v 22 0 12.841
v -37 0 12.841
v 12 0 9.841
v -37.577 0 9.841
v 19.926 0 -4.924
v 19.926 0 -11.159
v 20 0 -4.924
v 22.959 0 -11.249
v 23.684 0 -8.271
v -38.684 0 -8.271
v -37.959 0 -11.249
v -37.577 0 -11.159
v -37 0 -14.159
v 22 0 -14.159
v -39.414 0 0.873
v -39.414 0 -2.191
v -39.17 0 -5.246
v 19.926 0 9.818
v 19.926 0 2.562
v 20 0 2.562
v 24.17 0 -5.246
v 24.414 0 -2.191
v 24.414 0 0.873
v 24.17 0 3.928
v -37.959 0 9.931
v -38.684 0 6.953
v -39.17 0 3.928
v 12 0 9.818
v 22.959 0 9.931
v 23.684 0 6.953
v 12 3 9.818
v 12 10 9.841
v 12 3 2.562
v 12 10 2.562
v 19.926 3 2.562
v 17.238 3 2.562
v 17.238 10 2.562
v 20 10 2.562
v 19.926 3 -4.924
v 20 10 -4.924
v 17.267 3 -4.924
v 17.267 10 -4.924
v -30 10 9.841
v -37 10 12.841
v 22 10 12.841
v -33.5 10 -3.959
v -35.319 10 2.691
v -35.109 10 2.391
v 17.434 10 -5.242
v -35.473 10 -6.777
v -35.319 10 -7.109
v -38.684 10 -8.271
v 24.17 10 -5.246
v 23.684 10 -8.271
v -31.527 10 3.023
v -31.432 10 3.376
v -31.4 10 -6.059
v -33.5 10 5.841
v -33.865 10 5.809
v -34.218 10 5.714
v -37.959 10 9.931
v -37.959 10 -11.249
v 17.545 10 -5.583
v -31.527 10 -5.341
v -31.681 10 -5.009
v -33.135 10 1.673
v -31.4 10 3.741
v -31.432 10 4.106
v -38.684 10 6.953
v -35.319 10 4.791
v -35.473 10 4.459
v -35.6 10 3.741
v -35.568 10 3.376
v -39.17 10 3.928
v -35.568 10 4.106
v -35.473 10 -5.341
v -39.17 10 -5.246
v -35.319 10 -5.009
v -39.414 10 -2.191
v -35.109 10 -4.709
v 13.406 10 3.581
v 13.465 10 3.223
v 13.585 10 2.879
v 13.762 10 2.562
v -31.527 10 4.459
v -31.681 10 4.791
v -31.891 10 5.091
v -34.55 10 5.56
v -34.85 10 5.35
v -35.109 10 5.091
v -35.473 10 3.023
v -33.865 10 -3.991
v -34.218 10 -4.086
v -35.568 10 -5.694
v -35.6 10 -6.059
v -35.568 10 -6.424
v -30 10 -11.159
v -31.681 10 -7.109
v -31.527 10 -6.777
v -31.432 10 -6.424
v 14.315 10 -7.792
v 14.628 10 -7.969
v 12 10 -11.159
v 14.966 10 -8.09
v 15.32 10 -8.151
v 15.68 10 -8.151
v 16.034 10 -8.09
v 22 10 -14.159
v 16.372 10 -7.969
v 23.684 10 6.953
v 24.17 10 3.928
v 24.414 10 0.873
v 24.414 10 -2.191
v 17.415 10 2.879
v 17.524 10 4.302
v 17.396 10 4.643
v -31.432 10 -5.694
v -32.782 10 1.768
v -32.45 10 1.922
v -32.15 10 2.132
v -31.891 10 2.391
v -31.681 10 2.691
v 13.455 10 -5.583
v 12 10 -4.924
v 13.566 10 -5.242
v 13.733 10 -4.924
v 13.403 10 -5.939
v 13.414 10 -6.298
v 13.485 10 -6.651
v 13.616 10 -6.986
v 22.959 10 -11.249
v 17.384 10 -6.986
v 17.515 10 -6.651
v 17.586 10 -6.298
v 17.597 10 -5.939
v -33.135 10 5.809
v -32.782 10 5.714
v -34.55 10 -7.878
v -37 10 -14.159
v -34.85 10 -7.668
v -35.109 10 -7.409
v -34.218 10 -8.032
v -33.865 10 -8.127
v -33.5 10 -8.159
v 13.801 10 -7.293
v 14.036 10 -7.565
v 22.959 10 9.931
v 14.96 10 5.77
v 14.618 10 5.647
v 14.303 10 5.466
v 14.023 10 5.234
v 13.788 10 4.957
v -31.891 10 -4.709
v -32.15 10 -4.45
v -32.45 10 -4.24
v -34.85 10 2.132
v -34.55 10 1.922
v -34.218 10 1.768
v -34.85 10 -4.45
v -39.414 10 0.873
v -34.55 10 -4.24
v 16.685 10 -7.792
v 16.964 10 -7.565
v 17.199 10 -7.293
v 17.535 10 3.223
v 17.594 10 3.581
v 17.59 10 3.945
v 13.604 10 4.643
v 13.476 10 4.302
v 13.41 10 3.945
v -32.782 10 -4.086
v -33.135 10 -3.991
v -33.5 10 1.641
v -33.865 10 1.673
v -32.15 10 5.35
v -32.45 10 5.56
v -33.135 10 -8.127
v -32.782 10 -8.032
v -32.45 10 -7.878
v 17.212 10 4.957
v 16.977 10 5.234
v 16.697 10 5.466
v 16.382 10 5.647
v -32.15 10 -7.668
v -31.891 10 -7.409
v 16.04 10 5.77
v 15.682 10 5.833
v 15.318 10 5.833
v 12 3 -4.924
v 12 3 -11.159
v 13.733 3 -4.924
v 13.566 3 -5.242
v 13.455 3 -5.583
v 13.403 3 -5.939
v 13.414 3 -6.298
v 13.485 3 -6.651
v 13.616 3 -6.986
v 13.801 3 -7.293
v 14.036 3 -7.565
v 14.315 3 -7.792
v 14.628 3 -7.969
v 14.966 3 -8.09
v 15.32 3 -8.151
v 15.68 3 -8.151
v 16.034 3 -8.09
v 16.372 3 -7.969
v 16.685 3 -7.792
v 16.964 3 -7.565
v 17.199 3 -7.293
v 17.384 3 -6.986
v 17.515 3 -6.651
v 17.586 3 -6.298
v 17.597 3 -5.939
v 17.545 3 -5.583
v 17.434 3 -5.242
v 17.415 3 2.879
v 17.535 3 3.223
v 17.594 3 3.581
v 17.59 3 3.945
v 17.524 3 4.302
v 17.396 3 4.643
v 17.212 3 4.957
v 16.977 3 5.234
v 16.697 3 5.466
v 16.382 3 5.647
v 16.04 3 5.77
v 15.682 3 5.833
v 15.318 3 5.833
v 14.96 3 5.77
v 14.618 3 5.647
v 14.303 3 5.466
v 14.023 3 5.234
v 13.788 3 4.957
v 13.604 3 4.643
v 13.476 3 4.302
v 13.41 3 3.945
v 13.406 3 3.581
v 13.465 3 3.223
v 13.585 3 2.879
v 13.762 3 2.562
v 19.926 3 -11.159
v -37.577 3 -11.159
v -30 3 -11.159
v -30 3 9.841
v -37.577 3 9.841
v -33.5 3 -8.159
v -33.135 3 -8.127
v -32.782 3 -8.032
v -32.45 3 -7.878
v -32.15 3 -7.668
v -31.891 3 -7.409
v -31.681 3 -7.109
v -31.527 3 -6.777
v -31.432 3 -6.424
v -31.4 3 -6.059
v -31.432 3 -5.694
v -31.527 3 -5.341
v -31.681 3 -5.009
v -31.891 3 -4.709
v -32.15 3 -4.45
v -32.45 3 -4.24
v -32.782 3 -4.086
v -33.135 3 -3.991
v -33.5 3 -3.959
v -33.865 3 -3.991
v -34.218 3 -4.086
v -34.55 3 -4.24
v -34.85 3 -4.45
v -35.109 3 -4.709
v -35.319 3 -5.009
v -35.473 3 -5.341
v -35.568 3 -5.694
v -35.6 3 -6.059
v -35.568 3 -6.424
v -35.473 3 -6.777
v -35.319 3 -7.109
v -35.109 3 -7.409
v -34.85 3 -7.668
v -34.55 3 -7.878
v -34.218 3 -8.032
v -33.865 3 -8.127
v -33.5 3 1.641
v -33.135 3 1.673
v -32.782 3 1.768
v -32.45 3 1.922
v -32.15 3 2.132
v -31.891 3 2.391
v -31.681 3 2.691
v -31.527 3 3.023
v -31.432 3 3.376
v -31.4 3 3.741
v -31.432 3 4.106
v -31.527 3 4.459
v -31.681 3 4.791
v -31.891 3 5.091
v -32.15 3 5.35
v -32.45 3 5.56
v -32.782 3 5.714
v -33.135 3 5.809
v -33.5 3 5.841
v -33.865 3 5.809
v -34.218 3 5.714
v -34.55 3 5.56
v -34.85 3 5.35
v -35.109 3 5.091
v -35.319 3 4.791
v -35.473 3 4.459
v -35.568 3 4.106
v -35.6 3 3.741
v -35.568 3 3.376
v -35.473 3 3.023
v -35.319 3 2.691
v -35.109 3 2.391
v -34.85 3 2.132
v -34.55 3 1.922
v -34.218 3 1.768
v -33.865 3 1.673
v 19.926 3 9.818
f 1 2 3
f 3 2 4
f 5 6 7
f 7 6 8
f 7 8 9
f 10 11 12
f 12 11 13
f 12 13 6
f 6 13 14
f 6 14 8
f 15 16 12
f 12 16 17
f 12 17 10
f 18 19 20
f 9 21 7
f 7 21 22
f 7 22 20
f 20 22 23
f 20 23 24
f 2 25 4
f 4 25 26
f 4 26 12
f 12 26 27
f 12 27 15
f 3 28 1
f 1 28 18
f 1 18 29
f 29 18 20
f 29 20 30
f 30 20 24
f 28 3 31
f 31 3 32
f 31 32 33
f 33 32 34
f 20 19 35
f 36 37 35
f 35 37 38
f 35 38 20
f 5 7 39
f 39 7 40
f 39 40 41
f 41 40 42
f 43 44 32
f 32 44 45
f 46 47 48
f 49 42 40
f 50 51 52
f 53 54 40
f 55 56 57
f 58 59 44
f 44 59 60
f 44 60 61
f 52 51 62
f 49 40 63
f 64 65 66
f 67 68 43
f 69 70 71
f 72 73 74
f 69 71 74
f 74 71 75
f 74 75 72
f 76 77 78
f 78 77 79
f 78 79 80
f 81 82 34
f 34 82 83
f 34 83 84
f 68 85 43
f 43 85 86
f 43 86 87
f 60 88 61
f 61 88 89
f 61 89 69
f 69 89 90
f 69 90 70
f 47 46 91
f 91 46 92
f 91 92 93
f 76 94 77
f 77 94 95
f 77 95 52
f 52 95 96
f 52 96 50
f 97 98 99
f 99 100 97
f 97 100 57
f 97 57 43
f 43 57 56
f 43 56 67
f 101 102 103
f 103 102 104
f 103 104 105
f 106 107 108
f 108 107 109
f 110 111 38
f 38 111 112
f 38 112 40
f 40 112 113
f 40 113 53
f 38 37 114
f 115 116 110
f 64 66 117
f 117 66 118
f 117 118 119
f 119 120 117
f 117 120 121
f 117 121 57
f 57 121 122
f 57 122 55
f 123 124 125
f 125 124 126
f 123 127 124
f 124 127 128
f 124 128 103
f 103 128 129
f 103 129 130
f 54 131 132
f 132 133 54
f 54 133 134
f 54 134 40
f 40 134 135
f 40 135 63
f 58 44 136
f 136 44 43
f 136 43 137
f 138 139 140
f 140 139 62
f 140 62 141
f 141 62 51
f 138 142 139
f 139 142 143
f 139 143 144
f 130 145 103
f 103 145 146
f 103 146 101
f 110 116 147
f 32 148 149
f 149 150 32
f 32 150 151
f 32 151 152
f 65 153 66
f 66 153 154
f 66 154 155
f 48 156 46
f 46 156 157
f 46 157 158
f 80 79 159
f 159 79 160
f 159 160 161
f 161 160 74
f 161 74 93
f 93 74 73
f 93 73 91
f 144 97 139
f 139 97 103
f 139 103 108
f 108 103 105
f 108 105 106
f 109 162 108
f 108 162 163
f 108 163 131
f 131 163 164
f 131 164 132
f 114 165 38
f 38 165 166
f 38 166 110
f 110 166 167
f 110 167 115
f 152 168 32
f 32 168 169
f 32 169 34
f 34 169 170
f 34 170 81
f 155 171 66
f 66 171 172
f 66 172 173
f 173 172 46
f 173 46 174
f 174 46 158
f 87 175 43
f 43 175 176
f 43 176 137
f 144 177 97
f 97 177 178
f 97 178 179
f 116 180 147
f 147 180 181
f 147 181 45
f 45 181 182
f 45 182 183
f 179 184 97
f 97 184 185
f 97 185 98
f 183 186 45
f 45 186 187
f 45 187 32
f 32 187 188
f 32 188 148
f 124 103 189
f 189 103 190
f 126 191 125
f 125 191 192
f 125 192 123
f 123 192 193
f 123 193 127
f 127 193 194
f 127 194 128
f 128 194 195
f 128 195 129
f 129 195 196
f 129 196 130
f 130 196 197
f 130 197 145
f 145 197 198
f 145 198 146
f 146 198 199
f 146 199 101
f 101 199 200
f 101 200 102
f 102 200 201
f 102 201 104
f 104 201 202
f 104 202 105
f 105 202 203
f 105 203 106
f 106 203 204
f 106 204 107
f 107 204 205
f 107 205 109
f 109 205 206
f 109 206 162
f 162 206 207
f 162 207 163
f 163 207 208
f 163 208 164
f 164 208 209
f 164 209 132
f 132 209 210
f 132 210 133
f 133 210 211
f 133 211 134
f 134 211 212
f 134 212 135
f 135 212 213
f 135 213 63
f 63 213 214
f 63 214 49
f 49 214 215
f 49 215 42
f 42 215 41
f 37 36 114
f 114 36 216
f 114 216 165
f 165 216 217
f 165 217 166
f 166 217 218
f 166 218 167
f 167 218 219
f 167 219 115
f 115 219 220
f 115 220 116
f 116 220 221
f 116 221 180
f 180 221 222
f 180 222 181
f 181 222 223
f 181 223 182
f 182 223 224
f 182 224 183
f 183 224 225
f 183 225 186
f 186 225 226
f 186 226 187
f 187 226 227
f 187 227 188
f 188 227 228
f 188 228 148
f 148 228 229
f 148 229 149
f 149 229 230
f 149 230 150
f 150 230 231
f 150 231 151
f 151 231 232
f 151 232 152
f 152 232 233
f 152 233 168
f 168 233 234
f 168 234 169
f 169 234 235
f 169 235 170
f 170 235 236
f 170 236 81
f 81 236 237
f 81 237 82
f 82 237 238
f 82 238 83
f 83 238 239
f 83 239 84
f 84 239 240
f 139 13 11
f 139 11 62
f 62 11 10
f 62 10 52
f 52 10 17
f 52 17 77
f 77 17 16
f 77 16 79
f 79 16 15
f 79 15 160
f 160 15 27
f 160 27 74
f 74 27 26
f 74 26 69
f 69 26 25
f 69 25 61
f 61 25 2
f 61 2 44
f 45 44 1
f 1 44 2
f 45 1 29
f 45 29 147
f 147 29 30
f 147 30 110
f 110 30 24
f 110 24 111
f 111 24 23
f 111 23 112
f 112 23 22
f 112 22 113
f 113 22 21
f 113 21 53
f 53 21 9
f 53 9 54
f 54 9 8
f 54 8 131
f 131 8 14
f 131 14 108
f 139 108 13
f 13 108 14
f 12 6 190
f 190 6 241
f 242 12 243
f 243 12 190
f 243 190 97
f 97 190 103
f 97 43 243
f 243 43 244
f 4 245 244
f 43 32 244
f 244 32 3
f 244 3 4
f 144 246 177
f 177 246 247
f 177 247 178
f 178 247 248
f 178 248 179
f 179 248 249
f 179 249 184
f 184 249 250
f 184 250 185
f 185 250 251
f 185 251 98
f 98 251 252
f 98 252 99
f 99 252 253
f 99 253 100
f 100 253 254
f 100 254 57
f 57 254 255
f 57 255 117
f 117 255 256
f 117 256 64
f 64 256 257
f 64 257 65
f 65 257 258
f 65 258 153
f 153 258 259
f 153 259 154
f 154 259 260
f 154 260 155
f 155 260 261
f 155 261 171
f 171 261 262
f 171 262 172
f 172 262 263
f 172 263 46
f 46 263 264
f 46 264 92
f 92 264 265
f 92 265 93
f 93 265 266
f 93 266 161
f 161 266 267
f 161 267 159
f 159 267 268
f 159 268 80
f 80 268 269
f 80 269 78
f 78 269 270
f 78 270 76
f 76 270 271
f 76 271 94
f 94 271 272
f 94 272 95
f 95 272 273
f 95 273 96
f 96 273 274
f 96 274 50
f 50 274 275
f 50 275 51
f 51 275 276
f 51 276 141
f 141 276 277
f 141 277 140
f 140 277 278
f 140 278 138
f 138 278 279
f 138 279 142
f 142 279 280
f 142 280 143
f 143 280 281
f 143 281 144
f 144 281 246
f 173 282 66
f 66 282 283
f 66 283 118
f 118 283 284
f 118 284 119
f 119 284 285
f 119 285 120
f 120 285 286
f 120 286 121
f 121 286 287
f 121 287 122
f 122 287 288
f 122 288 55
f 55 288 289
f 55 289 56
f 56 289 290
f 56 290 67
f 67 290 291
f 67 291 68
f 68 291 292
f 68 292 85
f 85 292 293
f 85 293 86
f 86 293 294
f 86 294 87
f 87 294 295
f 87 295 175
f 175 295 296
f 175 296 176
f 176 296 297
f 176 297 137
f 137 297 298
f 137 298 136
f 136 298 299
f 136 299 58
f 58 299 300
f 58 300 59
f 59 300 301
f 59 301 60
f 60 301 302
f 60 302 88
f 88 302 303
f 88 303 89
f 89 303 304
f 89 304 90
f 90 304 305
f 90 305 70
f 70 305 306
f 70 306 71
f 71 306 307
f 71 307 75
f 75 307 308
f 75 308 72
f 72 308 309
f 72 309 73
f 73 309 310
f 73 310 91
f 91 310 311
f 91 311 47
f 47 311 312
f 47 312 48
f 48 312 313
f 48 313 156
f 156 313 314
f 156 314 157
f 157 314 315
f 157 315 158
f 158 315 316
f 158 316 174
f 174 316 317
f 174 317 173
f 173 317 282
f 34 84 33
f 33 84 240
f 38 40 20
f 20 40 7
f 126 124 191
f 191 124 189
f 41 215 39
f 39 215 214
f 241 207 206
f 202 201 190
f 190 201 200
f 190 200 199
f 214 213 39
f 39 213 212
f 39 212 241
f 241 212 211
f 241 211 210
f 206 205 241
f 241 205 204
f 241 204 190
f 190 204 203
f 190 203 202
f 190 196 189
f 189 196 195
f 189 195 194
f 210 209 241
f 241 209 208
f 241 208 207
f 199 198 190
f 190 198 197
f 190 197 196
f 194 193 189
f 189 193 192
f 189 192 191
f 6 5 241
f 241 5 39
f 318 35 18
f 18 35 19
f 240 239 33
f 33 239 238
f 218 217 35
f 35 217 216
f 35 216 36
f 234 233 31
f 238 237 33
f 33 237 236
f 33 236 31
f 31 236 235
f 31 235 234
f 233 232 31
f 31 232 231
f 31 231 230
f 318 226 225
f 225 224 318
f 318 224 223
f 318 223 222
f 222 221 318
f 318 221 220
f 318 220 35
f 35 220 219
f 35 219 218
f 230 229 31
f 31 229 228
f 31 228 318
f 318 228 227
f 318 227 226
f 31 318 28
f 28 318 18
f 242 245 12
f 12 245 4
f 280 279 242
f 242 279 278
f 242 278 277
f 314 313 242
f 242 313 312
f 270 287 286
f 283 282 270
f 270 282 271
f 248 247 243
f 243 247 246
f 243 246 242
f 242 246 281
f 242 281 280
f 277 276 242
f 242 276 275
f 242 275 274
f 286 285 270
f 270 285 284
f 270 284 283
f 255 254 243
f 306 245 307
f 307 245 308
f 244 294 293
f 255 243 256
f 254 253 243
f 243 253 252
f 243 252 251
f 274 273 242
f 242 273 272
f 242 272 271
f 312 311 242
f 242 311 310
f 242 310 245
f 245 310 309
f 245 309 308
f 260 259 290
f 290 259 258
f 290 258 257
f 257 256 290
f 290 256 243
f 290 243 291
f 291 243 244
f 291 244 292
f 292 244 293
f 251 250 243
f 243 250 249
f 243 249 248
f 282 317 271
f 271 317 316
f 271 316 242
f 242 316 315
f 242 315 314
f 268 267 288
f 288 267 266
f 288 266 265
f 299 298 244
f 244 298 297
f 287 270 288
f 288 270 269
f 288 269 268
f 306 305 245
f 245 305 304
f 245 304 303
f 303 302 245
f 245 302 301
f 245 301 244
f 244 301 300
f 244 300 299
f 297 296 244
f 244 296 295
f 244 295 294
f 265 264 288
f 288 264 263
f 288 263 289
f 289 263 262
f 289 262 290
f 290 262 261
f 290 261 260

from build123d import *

# Parameters (mm, degrees)
SKETCH1_R           = 2.1
SKETCH1_W           = 42
SKETCH1_H           = 21
BOSS_EXTRUDE1_DEPTH = 10
SKETCH2_W           = 8
SKETCH2_H           = 7.485714894
CUT_EXTRUDE1_DEPTH  = 10
SKETCH3_W           = 7.57739789
SKETCH3_H           = 21
SKETCH3_W_2         = 7.925755829
SKETCH3_H_2         = 20.976807548
CUT_EXTRUDE3_DEPTH  = 3


with BuildPart() as part:
    # Sketch1 → Boss-Extrude1 (new body)
    with BuildSketch(Plane(origin=(0, 0, 0), x_dir=(1, 0, 0), z_dir=(0, 1, 0))):
        with BuildLine():
            Line((-37, 14.15897814), (22, 14.15897814))
            ThreePointArc((22, 14.15897814), (24.444487245, 0.65897814), (22, -12.84102186))
            Line((22, -12.84102186), (-37, -12.84102186))
            ThreePointArc((-37, -12.84102186), (-39.444487245, 0.65897814), (-37, 14.15897814))
        make_face()
        with Locations(Location((15.5, 6.05897814, 0), (0, 0, 270))):
            Circle(SKETCH1_R, mode=Mode.SUBTRACT)
        with Locations(Location((15.5, -3.74102186, 0), (0, 0, 270))):
            Circle(SKETCH1_R, mode=Mode.SUBTRACT)
        with Locations(Location((-33.5, 6.05897814, 0), (0, 0, 90))):
            Circle(SKETCH1_R, mode=Mode.SUBTRACT)
        with Locations(Location((-33.5, -3.74102186, 0), (0, 0, 90))):
            Circle(SKETCH1_R, mode=Mode.SUBTRACT)
        with Locations((-9, 0.65897814)):
            Rectangle(SKETCH1_W, SKETCH1_H, mode=Mode.SUBTRACT)
    extrude(amount=BOSS_EXTRUDE1_DEPTH)

    # Sketch2 → Cut-Extrude1 (cut)
    with BuildSketch(Plane(origin=(0, 0, 0), x_dir=(1, 0, 0), z_dir=(0, 1, 0))):
        with Locations((16, 1.180915362)):
            Rectangle(SKETCH2_W, SKETCH2_H)
    extrude(amount=CUT_EXTRUDE1_DEPTH, mode=Mode.SUBTRACT)

    # Sketch3 → Cut-Extrude3 (cut)
    with BuildSketch(Plane(origin=(0, 0, 0), x_dir=(1, 0, 0), z_dir=(0, 1, 0))):
        with Locations((-33.788698945, 0.65897814)):
            Rectangle(SKETCH3_W, SKETCH3_H)
        with Locations((15.962877914, 0.670574366)):
            Rectangle(SKETCH3_W_2, SKETCH3_H_2)
    extrude(amount=CUT_EXTRUDE3_DEPTH, mode=Mode.SUBTRACT)


solid = part.part
